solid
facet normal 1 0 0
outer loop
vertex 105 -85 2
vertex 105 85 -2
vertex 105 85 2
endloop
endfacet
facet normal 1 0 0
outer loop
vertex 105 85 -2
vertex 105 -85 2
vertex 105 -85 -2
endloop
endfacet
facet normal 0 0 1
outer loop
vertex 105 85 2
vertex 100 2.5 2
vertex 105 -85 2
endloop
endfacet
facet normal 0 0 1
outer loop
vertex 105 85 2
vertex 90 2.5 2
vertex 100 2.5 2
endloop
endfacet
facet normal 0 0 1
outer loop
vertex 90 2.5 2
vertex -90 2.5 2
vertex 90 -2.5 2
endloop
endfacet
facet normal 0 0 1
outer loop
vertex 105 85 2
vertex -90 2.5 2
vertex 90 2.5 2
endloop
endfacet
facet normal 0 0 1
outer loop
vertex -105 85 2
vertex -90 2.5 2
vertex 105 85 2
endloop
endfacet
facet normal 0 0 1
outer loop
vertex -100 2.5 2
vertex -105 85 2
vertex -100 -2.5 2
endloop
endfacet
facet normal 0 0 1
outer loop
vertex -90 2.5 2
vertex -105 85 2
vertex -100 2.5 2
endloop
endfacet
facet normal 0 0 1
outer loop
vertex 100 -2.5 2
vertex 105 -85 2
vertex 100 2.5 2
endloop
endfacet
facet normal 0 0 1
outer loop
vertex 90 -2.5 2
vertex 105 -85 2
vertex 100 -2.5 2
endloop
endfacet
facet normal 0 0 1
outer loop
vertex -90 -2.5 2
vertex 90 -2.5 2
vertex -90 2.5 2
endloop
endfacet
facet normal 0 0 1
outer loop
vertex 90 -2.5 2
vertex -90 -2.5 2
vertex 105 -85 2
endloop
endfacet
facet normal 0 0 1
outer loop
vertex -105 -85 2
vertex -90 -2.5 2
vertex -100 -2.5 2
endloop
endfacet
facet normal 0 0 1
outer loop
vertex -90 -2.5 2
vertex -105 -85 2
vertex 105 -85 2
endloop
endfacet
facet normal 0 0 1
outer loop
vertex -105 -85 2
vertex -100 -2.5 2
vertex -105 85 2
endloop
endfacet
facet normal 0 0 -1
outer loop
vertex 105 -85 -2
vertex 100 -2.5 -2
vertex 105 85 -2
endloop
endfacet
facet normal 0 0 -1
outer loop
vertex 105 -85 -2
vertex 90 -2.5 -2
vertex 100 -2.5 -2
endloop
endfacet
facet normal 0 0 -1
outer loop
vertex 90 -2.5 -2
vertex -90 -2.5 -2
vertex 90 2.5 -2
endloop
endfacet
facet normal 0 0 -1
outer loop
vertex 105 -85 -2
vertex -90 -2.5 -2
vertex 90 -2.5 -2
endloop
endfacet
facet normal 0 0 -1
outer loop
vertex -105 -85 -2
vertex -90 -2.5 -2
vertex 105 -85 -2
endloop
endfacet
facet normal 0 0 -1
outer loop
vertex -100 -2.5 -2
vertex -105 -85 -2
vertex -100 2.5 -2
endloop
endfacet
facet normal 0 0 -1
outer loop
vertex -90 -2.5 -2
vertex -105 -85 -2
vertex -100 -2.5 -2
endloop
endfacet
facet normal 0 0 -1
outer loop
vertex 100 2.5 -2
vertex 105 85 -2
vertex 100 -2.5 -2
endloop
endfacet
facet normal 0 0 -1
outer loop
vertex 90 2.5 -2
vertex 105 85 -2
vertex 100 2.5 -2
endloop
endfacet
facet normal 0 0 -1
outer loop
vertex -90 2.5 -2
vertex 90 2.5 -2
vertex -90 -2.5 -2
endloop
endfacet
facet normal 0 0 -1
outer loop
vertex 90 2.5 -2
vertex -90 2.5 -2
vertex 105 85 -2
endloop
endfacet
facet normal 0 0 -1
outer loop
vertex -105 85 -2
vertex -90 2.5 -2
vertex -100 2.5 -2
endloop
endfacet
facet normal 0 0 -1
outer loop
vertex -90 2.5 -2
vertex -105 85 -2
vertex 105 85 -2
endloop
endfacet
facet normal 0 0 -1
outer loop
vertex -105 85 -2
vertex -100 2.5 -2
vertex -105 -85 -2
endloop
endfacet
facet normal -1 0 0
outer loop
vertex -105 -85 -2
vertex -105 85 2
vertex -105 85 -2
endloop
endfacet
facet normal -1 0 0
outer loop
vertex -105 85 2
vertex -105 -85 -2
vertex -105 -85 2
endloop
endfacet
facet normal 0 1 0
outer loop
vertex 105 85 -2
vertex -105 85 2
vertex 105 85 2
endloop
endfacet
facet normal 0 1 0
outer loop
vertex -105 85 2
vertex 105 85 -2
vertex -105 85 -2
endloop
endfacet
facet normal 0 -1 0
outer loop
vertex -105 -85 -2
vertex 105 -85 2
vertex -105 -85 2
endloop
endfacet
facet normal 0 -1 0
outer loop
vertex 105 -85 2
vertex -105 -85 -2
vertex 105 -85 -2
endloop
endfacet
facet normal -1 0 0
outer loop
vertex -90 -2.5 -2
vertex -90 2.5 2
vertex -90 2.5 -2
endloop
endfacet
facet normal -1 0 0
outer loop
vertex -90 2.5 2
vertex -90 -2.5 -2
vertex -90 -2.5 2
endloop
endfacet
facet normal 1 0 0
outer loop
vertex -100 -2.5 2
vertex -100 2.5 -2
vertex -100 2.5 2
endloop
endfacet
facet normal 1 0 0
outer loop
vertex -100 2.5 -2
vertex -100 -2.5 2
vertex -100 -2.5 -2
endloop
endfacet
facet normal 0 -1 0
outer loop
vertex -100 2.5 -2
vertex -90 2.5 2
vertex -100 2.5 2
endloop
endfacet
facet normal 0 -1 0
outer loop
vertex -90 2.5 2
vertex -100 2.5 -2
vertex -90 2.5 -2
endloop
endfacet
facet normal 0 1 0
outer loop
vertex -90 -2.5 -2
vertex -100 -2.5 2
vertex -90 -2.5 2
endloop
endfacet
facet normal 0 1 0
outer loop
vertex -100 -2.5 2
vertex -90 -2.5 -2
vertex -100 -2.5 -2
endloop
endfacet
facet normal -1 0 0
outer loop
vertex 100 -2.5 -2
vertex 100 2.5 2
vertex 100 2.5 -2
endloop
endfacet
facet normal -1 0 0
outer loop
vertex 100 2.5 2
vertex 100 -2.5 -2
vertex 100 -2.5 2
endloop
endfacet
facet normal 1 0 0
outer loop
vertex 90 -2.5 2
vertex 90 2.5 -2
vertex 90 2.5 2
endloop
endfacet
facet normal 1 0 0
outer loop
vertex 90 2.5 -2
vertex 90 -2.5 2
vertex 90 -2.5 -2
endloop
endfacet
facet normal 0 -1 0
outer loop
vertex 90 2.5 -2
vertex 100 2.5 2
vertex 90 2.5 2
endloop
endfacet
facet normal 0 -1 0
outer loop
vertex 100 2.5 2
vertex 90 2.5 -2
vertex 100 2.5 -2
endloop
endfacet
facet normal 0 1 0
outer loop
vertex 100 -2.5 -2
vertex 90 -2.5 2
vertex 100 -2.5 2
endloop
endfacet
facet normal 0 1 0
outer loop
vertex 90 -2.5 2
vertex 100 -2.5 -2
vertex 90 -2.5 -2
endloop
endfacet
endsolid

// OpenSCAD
// ========================================
// a 210 x 170 x 4 mm plate with two 10 x 5 mm slots
// NeuroCAD canonical IR; dimensions are millimetres
// ========================================
$fn = 48;

difference() {
  cube(size=[210, 170, 4], center=true);
  translate([-95, 0, 0]) {
    cube(size=[10, 5, 6], center=true);
  }
  translate([95, 0, 0]) {
    cube(size=[10, 5, 6], center=true);
  }
}
